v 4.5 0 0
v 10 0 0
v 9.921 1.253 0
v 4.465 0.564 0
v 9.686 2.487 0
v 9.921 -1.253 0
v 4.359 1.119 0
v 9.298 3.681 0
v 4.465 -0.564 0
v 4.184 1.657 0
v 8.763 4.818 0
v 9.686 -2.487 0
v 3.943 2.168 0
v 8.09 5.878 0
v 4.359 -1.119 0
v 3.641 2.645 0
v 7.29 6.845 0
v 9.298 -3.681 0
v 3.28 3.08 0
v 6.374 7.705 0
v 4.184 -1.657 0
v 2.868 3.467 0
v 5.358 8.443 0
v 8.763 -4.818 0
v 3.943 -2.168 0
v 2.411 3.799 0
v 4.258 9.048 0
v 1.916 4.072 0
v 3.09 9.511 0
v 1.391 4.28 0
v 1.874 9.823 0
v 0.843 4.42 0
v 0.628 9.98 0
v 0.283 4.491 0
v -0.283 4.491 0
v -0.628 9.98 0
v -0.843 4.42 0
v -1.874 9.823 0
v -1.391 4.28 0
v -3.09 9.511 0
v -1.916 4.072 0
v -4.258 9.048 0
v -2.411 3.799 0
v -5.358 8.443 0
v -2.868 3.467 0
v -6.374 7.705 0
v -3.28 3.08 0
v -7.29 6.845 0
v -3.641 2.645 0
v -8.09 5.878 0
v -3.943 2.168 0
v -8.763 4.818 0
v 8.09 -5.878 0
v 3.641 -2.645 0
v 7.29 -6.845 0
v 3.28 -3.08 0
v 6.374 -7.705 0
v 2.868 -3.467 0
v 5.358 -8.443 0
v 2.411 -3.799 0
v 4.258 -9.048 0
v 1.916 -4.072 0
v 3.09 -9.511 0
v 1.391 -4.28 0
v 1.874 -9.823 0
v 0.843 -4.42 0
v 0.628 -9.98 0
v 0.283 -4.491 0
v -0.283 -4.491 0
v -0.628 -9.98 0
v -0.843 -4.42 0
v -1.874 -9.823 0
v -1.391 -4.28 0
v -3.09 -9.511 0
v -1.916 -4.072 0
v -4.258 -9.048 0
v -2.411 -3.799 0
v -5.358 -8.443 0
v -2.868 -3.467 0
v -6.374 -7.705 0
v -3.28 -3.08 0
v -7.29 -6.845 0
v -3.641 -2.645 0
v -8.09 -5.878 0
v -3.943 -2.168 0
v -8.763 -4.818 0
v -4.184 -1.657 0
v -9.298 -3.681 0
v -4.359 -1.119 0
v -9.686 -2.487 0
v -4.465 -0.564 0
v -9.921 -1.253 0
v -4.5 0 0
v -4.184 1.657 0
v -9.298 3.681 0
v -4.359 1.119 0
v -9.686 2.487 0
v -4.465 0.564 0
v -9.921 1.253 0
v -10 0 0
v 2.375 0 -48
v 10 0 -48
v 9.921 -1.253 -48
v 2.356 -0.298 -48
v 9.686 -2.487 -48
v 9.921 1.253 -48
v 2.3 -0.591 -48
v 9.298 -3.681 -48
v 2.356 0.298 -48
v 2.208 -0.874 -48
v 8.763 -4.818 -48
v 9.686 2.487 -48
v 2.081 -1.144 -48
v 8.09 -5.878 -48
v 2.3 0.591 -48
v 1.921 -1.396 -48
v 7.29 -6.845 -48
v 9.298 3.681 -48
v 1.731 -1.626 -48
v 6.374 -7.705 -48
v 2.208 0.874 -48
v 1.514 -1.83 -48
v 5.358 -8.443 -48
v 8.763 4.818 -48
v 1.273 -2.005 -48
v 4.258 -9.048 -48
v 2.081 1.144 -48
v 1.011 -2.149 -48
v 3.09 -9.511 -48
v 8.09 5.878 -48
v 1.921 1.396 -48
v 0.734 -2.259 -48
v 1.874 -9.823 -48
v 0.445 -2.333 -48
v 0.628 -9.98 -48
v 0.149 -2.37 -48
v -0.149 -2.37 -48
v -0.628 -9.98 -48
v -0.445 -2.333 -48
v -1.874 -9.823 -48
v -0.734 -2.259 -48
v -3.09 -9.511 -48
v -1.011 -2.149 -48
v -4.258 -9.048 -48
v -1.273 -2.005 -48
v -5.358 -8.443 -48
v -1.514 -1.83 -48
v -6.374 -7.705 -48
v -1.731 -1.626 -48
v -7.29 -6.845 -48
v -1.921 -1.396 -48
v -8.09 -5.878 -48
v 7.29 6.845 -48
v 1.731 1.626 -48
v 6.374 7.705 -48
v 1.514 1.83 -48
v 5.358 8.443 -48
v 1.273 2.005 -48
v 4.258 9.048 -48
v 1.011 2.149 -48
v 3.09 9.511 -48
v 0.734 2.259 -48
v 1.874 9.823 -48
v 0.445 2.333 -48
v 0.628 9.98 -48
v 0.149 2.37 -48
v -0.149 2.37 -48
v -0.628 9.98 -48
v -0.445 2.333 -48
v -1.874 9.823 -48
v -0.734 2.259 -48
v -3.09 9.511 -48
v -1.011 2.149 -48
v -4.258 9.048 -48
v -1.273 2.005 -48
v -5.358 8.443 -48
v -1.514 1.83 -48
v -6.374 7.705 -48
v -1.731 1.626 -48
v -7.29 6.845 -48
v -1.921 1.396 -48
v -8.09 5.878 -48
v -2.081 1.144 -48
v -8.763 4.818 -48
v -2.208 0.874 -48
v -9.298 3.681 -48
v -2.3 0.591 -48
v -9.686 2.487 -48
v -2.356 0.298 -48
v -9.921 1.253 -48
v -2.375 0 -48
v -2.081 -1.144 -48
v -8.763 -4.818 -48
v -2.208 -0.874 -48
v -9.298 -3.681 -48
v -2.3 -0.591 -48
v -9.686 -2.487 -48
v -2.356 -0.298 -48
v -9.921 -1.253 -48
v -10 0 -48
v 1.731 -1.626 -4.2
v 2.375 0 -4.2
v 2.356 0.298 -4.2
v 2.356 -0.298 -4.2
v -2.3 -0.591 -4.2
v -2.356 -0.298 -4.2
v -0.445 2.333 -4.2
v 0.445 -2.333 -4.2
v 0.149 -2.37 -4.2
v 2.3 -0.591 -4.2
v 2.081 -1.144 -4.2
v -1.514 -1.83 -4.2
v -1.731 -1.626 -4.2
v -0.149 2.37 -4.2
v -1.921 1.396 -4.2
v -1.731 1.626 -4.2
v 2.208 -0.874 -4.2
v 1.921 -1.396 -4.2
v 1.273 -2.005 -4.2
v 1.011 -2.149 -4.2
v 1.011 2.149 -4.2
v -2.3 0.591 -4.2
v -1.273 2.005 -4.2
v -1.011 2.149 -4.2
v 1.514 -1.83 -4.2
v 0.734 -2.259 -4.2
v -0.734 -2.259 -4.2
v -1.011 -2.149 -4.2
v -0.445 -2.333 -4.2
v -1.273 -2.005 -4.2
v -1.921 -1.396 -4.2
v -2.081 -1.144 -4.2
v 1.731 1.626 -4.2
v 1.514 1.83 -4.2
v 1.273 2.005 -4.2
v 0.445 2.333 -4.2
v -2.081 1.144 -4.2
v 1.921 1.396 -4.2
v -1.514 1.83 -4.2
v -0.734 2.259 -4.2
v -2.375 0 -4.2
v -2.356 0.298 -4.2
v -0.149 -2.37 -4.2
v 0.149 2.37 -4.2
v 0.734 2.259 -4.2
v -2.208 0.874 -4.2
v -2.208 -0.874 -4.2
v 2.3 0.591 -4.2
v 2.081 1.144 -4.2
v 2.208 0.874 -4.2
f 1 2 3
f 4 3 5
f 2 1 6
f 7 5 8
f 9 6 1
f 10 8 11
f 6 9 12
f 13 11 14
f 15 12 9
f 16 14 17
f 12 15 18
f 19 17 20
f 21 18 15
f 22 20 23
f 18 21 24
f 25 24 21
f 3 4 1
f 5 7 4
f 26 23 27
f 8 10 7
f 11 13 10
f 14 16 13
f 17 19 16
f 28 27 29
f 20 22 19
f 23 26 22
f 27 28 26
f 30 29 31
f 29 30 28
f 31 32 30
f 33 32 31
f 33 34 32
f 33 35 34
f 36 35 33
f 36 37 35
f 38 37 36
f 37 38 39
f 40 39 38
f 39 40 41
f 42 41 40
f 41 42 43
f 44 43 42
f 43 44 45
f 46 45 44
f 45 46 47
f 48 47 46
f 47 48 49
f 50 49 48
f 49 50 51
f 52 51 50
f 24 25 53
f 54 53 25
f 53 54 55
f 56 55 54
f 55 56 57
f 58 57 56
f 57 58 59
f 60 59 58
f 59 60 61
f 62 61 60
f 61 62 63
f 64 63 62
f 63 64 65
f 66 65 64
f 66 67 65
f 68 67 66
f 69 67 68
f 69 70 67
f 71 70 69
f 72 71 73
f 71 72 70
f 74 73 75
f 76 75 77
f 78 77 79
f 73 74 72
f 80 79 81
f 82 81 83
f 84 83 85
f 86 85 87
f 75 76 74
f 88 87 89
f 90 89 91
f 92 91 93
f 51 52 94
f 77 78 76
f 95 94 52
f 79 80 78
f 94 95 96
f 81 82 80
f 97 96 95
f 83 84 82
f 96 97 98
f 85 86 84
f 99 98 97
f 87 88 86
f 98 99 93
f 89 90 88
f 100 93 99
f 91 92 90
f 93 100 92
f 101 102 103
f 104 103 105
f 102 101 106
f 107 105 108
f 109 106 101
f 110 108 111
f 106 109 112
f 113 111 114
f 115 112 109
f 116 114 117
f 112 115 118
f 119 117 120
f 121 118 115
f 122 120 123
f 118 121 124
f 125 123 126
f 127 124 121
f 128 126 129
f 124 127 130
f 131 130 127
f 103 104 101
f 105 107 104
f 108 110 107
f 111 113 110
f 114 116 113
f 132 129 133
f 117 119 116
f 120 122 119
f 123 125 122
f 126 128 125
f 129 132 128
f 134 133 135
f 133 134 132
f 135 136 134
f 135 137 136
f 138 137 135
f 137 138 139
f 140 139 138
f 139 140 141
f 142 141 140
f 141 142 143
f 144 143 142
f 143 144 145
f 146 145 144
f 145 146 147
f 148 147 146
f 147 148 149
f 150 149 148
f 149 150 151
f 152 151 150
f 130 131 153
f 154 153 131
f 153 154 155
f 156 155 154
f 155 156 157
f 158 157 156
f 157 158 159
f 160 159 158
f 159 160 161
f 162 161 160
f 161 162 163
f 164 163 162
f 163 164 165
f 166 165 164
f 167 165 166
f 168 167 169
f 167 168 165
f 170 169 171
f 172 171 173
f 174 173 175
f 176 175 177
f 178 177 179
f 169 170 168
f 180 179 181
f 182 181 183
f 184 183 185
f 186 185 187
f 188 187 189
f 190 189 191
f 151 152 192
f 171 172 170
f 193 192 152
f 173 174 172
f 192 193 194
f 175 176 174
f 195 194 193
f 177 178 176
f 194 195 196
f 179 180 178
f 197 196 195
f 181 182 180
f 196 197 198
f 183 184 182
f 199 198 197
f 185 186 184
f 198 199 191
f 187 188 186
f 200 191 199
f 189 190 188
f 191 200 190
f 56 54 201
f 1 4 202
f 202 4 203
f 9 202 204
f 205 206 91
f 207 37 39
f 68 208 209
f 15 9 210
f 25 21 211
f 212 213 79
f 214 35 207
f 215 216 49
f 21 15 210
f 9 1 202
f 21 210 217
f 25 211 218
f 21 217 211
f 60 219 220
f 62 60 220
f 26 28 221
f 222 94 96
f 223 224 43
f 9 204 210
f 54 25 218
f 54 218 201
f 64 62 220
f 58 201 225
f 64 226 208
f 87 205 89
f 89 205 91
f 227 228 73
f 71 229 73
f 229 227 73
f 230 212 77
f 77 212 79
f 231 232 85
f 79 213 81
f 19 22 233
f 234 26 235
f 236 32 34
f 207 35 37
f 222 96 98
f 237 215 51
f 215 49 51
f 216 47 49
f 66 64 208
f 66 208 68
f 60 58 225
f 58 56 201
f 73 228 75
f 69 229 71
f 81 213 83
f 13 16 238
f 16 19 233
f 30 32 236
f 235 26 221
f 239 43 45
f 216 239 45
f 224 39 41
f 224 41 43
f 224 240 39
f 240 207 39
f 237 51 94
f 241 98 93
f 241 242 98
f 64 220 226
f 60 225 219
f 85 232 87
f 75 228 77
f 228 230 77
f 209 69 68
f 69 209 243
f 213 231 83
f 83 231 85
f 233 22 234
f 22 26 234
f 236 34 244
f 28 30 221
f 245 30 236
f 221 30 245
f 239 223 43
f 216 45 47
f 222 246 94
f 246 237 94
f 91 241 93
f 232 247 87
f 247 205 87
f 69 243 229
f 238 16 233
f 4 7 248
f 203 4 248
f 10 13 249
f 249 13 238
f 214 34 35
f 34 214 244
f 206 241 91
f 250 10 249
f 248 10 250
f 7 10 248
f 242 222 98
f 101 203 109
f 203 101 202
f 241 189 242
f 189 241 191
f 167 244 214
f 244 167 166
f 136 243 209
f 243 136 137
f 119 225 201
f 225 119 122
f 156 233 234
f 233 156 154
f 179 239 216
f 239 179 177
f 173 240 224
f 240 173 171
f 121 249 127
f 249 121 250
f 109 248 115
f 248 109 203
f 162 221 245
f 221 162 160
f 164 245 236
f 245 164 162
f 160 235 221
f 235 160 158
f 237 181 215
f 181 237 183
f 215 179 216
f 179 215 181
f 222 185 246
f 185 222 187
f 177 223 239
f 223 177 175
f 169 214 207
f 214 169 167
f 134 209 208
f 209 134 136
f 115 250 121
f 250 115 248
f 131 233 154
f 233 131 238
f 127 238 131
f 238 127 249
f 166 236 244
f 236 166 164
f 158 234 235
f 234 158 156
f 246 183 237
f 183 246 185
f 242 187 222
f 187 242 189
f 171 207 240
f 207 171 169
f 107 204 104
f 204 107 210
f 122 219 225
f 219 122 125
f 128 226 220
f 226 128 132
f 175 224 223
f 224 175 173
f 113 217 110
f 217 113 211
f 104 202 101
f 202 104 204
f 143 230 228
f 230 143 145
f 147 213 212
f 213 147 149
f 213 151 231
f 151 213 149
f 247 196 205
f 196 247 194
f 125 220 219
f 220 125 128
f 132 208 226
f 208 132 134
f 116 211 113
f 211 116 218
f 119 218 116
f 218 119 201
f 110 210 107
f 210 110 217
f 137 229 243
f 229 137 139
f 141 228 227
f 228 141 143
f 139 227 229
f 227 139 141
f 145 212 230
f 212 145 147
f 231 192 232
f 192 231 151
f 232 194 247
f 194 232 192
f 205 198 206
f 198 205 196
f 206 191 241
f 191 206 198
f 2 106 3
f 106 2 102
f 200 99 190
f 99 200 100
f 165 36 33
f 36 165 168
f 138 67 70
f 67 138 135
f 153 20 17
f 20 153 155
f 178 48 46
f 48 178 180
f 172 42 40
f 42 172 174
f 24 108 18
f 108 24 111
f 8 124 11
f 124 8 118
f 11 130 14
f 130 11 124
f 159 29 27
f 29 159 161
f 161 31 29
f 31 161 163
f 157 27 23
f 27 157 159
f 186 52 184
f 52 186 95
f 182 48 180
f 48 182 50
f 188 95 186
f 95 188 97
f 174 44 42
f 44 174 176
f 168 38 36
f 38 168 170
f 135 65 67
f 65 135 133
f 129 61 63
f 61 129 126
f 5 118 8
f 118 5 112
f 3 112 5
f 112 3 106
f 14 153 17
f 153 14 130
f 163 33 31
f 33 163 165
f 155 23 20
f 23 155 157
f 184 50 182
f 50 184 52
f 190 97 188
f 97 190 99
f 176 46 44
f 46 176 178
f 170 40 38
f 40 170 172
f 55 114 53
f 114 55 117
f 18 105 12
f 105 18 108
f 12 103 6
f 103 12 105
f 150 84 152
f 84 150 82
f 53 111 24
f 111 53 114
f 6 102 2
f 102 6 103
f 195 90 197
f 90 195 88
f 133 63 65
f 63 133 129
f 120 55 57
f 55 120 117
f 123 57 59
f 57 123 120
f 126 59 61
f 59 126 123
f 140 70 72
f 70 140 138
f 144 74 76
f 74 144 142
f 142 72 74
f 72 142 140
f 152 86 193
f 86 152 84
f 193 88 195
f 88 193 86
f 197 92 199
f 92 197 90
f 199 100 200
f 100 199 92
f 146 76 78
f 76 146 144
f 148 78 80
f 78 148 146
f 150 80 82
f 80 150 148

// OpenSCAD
$fn = 50;


difference() {
	union() {
		translate(v = [0, 0, -48.0000000000]) {
			cylinder(h = 48, r = 10.0000000000);
		}
	}
	union() {
		translate(v = [0, 0, 0]) {
			rotate(a = [0, 0, 0]) {
				difference() {
					union() {
						#translate(v = [0, 0, -48.0000000000]) {
							cylinder(h = 48, r = 2.2500000000);
						}
						#translate(v = [0, 0, -4.2000000000]) {
							cylinder(h = 4.2000000000, r = 10.0000000000, r1 = 2.3750000000, r2 = 4.5000000000);
						}
						#translate(v = [0, 0, -48.0000000000]) {
							cylinder(h = 48, r = 2.3750000000);
						}
						#translate(v = [0, 0, -48.0000000000]) {
							cylinder(h = 48, r = 2.2500000000);
						}
					}
					union();
				}
			}
		}
	}
}
